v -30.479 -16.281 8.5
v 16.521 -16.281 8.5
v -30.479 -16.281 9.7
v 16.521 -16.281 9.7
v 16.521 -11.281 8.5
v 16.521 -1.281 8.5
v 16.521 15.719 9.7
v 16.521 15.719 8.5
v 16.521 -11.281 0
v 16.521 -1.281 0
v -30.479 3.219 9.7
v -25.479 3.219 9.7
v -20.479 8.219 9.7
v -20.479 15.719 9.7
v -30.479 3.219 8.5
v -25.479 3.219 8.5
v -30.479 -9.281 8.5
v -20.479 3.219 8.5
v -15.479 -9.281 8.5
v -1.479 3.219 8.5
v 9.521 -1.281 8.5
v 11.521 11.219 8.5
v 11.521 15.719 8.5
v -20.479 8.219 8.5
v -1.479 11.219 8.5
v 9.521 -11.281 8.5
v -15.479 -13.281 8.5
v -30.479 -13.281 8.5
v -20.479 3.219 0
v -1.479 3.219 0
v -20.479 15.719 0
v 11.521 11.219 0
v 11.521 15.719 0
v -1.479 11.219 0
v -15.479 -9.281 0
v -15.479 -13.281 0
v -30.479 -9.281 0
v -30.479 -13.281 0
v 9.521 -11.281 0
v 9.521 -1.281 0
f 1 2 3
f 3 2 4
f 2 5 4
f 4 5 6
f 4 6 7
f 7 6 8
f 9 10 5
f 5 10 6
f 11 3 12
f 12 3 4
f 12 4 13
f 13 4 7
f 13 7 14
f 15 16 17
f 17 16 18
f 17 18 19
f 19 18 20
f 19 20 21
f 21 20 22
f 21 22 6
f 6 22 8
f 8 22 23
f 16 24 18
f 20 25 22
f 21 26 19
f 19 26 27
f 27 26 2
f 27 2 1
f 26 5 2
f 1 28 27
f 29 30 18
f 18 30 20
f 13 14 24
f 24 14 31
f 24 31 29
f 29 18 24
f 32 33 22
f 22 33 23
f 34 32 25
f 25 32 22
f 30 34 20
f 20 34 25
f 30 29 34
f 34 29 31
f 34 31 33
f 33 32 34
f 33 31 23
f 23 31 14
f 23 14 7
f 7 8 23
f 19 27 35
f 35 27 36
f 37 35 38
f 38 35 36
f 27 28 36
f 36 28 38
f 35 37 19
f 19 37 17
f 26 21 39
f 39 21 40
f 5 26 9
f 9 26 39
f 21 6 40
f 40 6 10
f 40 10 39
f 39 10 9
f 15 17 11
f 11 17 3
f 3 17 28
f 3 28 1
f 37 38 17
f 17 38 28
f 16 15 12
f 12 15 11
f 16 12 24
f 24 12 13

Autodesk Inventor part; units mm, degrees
ref_plane "YZ Plane" through (0, 0, 0) normal (1, 0, 0) x (0, 1, 0)
ref_plane "XZ Plane" through (0, 0, 0) normal (0, 1, 0) x (-1, 0, 0)
ref_plane "XY Plane" through (0, 0, 0) normal (0, 0, 1) x (1, 0, 0)
sketch "Sketch1" plane through (0, 0, 0) normal (0, 0, 1) x (1, 0, 0)
  line L0 (-30.479, 15.7185) -> (11.521, 15.7185)
  line L1 (11.521, 15.7185) -> (11.521, 11.2185)
  line L2 (11.521, 11.2185) -> (-30.479, 11.2185)
  line L3 (-30.479, 11.2185) -> (-30.479, 15.7185)
  line L4 (-30.479, 11.2185) -> (-1.479, 11.2185)
  line L5 (-1.479, 11.2185) -> (-1.479, 3.2185)
  line L6 (-1.479, 3.2185) -> (-30.479, 3.2185)
  line L7 (-30.479, 3.2185) -> (-30.479, 11.2185)
  point P0 (0, 0)
  point P1 (-1.479, 11.2185)
  dimension "d0" = 42
  dimension "d1" = 4.5
  dimension "d2" = 29
  dimension "d3" = 8
extrude "Extrusion1" add sketch "Sketch1" along normal blind 8.5
sketch "Sketch2" plane through (0, 0, 8.5) normal (0, 0, 1) x (1, 0, 0)
  line L0 (-30.479, 15.7185) -> (-30.479, 3.2185) projected
  line L1 (-30.479, 15.7185) -> (16.521, 15.7185)
  line L2 (16.521, 15.7185) -> (16.521, -16.2815)
  line L3 (16.521, -16.2815) -> (-30.479, -16.2815)
  line L4 (-30.479, -16.2815) -> (-30.479, 15.7185)
  point P0 (0, 0)
  dimension "d6" = 47
  dimension "d7" = 32
extrude "Extrusion2" add sketch "Sketch2" along normal blind 1.2
sketch "Sketch3" plane through (0, 0, 8.5) normal (0, 0, -1) x (-1, 0, 0)
  line L0 (30.479, 3.2185) -> (30.479, -16.2815) projected
  line L1 (30.479, -6.2815) -> (15.479, -6.2815)
  line L2 (15.479, -6.2815) -> (15.479, -13.2815)
  line L3 (15.479, -13.2815) -> (30.479, -13.2815)
  line L4 (30.479, -13.2815) -> (30.479, -6.2815)
  line L5 (30.479, -16.2815) -> (-16.521, -16.2815) projected
  point P0 (0, 0)
  dimension "d10" = 3
  dimension "d11" = 7
  dimension "d12" = 15
extrude "Extrusion3" add sketch "Sketch3" along normal blind 8.5
sketch "Sketch4" plane through (0, 0, 8.5) normal (0, 0, -1) x (-1, 0, 0)
  line L0 (-16.521, -16.2815) -> (-16.521, 15.7185) projected
  line L1 (-16.521, -1.2815) -> (-9.521, -1.2815)
  line L2 (-9.521, -1.2815) -> (-9.521, -11.2815)
  line L3 (-9.521, -11.2815) -> (-16.521, -11.2815)
  line L4 (-16.521, -11.2815) -> (-16.521, -1.2815)
  line L5 (30.479, -16.2815) -> (-16.521, -16.2815) projected
  point P0 (0, 0)
  dimension "d15" = 7
  dimension "d16" = 10
  dimension "d17" = 5
extrude "Extrusion4" add sketch "Sketch4" along normal blind 8.5
sketch "Sketch5" plane through (0, 0, 0) normal (0, 0, -1) x (-1, 0, 0)
  line L0 (-16.521, 15.7185) -> (30.479, 15.7185) projected
  line L1 (30.479, 3.2185) -> (1.479, 3.2185) projected
  line L2 (30.479, 15.7185) -> (20.479, 15.7185)
  line L3 (20.479, 15.7185) -> (20.479, 3.2185)
  line L4 (20.479, 3.2185) -> (30.479, 3.2185)
  line L5 (30.479, 3.2185) -> (30.479, 15.7185)
  point P0 (0, 0)
  dimension "d20" = 10
extrude "Extrusion5" cut sketch "Sketch5" against normal blind 8.5
sketch "Sketch6" plane through (0, 0, 0) normal (0, 0, -1) x (-1, 0, 0)
  line L0 (15.479, -6.2815) -> (30.479, -6.2815) projected
  line L1 (15.479, -6.2815) -> (30.479, -6.2815)
  line L2 (30.479, -6.2815) -> (30.479, -9.2815)
  line L3 (30.479, -9.2815) -> (15.479, -9.2815)
  line L4 (15.479, -9.2815) -> (15.479, -6.2815)
  line L5 (30.479, -13.2815) -> (30.479, -6.2815) projected
  point P0 (0, 0)
  dimension "d23" = 3
extrude "Extrusion6" cut sketch "Sketch6" against normal blind 8.5
sketch "Sketch7" plane through (0, 0, 8.5) normal (0, 0, -1) x (-1, 0, 0)
  line L0 (-16.521, 15.7185) -> (30.479, 15.7185) projected
  line L1 (20.479, 15.7185) -> (30.479, 15.7185)
  line L2 (30.479, 15.7185) -> (30.479, 3.2185)
  line L3 (30.479, 3.2185) -> (20.479, 3.2185)
  line L4 (20.479, 3.2185) -> (20.479, 15.7185)
  line L5 (20.479, 3.2185) -> (1.479, 3.2185) projected
  line L6 (30.479, 15.7185) -> (30.479, -9.2815) projected
  line L7 (20.479, 3.2185) -> (20.479, 15.7185) projected
  point P0 (0, 0)
extrude "Extrusion7" cut sketch "Sketch7" against normal blind 8.5
chamfer "Chamfer1" distance 5 angle 45 1 edges at (-20.479, 3.2185, 9.1)
properties part number "PD board supporter"
